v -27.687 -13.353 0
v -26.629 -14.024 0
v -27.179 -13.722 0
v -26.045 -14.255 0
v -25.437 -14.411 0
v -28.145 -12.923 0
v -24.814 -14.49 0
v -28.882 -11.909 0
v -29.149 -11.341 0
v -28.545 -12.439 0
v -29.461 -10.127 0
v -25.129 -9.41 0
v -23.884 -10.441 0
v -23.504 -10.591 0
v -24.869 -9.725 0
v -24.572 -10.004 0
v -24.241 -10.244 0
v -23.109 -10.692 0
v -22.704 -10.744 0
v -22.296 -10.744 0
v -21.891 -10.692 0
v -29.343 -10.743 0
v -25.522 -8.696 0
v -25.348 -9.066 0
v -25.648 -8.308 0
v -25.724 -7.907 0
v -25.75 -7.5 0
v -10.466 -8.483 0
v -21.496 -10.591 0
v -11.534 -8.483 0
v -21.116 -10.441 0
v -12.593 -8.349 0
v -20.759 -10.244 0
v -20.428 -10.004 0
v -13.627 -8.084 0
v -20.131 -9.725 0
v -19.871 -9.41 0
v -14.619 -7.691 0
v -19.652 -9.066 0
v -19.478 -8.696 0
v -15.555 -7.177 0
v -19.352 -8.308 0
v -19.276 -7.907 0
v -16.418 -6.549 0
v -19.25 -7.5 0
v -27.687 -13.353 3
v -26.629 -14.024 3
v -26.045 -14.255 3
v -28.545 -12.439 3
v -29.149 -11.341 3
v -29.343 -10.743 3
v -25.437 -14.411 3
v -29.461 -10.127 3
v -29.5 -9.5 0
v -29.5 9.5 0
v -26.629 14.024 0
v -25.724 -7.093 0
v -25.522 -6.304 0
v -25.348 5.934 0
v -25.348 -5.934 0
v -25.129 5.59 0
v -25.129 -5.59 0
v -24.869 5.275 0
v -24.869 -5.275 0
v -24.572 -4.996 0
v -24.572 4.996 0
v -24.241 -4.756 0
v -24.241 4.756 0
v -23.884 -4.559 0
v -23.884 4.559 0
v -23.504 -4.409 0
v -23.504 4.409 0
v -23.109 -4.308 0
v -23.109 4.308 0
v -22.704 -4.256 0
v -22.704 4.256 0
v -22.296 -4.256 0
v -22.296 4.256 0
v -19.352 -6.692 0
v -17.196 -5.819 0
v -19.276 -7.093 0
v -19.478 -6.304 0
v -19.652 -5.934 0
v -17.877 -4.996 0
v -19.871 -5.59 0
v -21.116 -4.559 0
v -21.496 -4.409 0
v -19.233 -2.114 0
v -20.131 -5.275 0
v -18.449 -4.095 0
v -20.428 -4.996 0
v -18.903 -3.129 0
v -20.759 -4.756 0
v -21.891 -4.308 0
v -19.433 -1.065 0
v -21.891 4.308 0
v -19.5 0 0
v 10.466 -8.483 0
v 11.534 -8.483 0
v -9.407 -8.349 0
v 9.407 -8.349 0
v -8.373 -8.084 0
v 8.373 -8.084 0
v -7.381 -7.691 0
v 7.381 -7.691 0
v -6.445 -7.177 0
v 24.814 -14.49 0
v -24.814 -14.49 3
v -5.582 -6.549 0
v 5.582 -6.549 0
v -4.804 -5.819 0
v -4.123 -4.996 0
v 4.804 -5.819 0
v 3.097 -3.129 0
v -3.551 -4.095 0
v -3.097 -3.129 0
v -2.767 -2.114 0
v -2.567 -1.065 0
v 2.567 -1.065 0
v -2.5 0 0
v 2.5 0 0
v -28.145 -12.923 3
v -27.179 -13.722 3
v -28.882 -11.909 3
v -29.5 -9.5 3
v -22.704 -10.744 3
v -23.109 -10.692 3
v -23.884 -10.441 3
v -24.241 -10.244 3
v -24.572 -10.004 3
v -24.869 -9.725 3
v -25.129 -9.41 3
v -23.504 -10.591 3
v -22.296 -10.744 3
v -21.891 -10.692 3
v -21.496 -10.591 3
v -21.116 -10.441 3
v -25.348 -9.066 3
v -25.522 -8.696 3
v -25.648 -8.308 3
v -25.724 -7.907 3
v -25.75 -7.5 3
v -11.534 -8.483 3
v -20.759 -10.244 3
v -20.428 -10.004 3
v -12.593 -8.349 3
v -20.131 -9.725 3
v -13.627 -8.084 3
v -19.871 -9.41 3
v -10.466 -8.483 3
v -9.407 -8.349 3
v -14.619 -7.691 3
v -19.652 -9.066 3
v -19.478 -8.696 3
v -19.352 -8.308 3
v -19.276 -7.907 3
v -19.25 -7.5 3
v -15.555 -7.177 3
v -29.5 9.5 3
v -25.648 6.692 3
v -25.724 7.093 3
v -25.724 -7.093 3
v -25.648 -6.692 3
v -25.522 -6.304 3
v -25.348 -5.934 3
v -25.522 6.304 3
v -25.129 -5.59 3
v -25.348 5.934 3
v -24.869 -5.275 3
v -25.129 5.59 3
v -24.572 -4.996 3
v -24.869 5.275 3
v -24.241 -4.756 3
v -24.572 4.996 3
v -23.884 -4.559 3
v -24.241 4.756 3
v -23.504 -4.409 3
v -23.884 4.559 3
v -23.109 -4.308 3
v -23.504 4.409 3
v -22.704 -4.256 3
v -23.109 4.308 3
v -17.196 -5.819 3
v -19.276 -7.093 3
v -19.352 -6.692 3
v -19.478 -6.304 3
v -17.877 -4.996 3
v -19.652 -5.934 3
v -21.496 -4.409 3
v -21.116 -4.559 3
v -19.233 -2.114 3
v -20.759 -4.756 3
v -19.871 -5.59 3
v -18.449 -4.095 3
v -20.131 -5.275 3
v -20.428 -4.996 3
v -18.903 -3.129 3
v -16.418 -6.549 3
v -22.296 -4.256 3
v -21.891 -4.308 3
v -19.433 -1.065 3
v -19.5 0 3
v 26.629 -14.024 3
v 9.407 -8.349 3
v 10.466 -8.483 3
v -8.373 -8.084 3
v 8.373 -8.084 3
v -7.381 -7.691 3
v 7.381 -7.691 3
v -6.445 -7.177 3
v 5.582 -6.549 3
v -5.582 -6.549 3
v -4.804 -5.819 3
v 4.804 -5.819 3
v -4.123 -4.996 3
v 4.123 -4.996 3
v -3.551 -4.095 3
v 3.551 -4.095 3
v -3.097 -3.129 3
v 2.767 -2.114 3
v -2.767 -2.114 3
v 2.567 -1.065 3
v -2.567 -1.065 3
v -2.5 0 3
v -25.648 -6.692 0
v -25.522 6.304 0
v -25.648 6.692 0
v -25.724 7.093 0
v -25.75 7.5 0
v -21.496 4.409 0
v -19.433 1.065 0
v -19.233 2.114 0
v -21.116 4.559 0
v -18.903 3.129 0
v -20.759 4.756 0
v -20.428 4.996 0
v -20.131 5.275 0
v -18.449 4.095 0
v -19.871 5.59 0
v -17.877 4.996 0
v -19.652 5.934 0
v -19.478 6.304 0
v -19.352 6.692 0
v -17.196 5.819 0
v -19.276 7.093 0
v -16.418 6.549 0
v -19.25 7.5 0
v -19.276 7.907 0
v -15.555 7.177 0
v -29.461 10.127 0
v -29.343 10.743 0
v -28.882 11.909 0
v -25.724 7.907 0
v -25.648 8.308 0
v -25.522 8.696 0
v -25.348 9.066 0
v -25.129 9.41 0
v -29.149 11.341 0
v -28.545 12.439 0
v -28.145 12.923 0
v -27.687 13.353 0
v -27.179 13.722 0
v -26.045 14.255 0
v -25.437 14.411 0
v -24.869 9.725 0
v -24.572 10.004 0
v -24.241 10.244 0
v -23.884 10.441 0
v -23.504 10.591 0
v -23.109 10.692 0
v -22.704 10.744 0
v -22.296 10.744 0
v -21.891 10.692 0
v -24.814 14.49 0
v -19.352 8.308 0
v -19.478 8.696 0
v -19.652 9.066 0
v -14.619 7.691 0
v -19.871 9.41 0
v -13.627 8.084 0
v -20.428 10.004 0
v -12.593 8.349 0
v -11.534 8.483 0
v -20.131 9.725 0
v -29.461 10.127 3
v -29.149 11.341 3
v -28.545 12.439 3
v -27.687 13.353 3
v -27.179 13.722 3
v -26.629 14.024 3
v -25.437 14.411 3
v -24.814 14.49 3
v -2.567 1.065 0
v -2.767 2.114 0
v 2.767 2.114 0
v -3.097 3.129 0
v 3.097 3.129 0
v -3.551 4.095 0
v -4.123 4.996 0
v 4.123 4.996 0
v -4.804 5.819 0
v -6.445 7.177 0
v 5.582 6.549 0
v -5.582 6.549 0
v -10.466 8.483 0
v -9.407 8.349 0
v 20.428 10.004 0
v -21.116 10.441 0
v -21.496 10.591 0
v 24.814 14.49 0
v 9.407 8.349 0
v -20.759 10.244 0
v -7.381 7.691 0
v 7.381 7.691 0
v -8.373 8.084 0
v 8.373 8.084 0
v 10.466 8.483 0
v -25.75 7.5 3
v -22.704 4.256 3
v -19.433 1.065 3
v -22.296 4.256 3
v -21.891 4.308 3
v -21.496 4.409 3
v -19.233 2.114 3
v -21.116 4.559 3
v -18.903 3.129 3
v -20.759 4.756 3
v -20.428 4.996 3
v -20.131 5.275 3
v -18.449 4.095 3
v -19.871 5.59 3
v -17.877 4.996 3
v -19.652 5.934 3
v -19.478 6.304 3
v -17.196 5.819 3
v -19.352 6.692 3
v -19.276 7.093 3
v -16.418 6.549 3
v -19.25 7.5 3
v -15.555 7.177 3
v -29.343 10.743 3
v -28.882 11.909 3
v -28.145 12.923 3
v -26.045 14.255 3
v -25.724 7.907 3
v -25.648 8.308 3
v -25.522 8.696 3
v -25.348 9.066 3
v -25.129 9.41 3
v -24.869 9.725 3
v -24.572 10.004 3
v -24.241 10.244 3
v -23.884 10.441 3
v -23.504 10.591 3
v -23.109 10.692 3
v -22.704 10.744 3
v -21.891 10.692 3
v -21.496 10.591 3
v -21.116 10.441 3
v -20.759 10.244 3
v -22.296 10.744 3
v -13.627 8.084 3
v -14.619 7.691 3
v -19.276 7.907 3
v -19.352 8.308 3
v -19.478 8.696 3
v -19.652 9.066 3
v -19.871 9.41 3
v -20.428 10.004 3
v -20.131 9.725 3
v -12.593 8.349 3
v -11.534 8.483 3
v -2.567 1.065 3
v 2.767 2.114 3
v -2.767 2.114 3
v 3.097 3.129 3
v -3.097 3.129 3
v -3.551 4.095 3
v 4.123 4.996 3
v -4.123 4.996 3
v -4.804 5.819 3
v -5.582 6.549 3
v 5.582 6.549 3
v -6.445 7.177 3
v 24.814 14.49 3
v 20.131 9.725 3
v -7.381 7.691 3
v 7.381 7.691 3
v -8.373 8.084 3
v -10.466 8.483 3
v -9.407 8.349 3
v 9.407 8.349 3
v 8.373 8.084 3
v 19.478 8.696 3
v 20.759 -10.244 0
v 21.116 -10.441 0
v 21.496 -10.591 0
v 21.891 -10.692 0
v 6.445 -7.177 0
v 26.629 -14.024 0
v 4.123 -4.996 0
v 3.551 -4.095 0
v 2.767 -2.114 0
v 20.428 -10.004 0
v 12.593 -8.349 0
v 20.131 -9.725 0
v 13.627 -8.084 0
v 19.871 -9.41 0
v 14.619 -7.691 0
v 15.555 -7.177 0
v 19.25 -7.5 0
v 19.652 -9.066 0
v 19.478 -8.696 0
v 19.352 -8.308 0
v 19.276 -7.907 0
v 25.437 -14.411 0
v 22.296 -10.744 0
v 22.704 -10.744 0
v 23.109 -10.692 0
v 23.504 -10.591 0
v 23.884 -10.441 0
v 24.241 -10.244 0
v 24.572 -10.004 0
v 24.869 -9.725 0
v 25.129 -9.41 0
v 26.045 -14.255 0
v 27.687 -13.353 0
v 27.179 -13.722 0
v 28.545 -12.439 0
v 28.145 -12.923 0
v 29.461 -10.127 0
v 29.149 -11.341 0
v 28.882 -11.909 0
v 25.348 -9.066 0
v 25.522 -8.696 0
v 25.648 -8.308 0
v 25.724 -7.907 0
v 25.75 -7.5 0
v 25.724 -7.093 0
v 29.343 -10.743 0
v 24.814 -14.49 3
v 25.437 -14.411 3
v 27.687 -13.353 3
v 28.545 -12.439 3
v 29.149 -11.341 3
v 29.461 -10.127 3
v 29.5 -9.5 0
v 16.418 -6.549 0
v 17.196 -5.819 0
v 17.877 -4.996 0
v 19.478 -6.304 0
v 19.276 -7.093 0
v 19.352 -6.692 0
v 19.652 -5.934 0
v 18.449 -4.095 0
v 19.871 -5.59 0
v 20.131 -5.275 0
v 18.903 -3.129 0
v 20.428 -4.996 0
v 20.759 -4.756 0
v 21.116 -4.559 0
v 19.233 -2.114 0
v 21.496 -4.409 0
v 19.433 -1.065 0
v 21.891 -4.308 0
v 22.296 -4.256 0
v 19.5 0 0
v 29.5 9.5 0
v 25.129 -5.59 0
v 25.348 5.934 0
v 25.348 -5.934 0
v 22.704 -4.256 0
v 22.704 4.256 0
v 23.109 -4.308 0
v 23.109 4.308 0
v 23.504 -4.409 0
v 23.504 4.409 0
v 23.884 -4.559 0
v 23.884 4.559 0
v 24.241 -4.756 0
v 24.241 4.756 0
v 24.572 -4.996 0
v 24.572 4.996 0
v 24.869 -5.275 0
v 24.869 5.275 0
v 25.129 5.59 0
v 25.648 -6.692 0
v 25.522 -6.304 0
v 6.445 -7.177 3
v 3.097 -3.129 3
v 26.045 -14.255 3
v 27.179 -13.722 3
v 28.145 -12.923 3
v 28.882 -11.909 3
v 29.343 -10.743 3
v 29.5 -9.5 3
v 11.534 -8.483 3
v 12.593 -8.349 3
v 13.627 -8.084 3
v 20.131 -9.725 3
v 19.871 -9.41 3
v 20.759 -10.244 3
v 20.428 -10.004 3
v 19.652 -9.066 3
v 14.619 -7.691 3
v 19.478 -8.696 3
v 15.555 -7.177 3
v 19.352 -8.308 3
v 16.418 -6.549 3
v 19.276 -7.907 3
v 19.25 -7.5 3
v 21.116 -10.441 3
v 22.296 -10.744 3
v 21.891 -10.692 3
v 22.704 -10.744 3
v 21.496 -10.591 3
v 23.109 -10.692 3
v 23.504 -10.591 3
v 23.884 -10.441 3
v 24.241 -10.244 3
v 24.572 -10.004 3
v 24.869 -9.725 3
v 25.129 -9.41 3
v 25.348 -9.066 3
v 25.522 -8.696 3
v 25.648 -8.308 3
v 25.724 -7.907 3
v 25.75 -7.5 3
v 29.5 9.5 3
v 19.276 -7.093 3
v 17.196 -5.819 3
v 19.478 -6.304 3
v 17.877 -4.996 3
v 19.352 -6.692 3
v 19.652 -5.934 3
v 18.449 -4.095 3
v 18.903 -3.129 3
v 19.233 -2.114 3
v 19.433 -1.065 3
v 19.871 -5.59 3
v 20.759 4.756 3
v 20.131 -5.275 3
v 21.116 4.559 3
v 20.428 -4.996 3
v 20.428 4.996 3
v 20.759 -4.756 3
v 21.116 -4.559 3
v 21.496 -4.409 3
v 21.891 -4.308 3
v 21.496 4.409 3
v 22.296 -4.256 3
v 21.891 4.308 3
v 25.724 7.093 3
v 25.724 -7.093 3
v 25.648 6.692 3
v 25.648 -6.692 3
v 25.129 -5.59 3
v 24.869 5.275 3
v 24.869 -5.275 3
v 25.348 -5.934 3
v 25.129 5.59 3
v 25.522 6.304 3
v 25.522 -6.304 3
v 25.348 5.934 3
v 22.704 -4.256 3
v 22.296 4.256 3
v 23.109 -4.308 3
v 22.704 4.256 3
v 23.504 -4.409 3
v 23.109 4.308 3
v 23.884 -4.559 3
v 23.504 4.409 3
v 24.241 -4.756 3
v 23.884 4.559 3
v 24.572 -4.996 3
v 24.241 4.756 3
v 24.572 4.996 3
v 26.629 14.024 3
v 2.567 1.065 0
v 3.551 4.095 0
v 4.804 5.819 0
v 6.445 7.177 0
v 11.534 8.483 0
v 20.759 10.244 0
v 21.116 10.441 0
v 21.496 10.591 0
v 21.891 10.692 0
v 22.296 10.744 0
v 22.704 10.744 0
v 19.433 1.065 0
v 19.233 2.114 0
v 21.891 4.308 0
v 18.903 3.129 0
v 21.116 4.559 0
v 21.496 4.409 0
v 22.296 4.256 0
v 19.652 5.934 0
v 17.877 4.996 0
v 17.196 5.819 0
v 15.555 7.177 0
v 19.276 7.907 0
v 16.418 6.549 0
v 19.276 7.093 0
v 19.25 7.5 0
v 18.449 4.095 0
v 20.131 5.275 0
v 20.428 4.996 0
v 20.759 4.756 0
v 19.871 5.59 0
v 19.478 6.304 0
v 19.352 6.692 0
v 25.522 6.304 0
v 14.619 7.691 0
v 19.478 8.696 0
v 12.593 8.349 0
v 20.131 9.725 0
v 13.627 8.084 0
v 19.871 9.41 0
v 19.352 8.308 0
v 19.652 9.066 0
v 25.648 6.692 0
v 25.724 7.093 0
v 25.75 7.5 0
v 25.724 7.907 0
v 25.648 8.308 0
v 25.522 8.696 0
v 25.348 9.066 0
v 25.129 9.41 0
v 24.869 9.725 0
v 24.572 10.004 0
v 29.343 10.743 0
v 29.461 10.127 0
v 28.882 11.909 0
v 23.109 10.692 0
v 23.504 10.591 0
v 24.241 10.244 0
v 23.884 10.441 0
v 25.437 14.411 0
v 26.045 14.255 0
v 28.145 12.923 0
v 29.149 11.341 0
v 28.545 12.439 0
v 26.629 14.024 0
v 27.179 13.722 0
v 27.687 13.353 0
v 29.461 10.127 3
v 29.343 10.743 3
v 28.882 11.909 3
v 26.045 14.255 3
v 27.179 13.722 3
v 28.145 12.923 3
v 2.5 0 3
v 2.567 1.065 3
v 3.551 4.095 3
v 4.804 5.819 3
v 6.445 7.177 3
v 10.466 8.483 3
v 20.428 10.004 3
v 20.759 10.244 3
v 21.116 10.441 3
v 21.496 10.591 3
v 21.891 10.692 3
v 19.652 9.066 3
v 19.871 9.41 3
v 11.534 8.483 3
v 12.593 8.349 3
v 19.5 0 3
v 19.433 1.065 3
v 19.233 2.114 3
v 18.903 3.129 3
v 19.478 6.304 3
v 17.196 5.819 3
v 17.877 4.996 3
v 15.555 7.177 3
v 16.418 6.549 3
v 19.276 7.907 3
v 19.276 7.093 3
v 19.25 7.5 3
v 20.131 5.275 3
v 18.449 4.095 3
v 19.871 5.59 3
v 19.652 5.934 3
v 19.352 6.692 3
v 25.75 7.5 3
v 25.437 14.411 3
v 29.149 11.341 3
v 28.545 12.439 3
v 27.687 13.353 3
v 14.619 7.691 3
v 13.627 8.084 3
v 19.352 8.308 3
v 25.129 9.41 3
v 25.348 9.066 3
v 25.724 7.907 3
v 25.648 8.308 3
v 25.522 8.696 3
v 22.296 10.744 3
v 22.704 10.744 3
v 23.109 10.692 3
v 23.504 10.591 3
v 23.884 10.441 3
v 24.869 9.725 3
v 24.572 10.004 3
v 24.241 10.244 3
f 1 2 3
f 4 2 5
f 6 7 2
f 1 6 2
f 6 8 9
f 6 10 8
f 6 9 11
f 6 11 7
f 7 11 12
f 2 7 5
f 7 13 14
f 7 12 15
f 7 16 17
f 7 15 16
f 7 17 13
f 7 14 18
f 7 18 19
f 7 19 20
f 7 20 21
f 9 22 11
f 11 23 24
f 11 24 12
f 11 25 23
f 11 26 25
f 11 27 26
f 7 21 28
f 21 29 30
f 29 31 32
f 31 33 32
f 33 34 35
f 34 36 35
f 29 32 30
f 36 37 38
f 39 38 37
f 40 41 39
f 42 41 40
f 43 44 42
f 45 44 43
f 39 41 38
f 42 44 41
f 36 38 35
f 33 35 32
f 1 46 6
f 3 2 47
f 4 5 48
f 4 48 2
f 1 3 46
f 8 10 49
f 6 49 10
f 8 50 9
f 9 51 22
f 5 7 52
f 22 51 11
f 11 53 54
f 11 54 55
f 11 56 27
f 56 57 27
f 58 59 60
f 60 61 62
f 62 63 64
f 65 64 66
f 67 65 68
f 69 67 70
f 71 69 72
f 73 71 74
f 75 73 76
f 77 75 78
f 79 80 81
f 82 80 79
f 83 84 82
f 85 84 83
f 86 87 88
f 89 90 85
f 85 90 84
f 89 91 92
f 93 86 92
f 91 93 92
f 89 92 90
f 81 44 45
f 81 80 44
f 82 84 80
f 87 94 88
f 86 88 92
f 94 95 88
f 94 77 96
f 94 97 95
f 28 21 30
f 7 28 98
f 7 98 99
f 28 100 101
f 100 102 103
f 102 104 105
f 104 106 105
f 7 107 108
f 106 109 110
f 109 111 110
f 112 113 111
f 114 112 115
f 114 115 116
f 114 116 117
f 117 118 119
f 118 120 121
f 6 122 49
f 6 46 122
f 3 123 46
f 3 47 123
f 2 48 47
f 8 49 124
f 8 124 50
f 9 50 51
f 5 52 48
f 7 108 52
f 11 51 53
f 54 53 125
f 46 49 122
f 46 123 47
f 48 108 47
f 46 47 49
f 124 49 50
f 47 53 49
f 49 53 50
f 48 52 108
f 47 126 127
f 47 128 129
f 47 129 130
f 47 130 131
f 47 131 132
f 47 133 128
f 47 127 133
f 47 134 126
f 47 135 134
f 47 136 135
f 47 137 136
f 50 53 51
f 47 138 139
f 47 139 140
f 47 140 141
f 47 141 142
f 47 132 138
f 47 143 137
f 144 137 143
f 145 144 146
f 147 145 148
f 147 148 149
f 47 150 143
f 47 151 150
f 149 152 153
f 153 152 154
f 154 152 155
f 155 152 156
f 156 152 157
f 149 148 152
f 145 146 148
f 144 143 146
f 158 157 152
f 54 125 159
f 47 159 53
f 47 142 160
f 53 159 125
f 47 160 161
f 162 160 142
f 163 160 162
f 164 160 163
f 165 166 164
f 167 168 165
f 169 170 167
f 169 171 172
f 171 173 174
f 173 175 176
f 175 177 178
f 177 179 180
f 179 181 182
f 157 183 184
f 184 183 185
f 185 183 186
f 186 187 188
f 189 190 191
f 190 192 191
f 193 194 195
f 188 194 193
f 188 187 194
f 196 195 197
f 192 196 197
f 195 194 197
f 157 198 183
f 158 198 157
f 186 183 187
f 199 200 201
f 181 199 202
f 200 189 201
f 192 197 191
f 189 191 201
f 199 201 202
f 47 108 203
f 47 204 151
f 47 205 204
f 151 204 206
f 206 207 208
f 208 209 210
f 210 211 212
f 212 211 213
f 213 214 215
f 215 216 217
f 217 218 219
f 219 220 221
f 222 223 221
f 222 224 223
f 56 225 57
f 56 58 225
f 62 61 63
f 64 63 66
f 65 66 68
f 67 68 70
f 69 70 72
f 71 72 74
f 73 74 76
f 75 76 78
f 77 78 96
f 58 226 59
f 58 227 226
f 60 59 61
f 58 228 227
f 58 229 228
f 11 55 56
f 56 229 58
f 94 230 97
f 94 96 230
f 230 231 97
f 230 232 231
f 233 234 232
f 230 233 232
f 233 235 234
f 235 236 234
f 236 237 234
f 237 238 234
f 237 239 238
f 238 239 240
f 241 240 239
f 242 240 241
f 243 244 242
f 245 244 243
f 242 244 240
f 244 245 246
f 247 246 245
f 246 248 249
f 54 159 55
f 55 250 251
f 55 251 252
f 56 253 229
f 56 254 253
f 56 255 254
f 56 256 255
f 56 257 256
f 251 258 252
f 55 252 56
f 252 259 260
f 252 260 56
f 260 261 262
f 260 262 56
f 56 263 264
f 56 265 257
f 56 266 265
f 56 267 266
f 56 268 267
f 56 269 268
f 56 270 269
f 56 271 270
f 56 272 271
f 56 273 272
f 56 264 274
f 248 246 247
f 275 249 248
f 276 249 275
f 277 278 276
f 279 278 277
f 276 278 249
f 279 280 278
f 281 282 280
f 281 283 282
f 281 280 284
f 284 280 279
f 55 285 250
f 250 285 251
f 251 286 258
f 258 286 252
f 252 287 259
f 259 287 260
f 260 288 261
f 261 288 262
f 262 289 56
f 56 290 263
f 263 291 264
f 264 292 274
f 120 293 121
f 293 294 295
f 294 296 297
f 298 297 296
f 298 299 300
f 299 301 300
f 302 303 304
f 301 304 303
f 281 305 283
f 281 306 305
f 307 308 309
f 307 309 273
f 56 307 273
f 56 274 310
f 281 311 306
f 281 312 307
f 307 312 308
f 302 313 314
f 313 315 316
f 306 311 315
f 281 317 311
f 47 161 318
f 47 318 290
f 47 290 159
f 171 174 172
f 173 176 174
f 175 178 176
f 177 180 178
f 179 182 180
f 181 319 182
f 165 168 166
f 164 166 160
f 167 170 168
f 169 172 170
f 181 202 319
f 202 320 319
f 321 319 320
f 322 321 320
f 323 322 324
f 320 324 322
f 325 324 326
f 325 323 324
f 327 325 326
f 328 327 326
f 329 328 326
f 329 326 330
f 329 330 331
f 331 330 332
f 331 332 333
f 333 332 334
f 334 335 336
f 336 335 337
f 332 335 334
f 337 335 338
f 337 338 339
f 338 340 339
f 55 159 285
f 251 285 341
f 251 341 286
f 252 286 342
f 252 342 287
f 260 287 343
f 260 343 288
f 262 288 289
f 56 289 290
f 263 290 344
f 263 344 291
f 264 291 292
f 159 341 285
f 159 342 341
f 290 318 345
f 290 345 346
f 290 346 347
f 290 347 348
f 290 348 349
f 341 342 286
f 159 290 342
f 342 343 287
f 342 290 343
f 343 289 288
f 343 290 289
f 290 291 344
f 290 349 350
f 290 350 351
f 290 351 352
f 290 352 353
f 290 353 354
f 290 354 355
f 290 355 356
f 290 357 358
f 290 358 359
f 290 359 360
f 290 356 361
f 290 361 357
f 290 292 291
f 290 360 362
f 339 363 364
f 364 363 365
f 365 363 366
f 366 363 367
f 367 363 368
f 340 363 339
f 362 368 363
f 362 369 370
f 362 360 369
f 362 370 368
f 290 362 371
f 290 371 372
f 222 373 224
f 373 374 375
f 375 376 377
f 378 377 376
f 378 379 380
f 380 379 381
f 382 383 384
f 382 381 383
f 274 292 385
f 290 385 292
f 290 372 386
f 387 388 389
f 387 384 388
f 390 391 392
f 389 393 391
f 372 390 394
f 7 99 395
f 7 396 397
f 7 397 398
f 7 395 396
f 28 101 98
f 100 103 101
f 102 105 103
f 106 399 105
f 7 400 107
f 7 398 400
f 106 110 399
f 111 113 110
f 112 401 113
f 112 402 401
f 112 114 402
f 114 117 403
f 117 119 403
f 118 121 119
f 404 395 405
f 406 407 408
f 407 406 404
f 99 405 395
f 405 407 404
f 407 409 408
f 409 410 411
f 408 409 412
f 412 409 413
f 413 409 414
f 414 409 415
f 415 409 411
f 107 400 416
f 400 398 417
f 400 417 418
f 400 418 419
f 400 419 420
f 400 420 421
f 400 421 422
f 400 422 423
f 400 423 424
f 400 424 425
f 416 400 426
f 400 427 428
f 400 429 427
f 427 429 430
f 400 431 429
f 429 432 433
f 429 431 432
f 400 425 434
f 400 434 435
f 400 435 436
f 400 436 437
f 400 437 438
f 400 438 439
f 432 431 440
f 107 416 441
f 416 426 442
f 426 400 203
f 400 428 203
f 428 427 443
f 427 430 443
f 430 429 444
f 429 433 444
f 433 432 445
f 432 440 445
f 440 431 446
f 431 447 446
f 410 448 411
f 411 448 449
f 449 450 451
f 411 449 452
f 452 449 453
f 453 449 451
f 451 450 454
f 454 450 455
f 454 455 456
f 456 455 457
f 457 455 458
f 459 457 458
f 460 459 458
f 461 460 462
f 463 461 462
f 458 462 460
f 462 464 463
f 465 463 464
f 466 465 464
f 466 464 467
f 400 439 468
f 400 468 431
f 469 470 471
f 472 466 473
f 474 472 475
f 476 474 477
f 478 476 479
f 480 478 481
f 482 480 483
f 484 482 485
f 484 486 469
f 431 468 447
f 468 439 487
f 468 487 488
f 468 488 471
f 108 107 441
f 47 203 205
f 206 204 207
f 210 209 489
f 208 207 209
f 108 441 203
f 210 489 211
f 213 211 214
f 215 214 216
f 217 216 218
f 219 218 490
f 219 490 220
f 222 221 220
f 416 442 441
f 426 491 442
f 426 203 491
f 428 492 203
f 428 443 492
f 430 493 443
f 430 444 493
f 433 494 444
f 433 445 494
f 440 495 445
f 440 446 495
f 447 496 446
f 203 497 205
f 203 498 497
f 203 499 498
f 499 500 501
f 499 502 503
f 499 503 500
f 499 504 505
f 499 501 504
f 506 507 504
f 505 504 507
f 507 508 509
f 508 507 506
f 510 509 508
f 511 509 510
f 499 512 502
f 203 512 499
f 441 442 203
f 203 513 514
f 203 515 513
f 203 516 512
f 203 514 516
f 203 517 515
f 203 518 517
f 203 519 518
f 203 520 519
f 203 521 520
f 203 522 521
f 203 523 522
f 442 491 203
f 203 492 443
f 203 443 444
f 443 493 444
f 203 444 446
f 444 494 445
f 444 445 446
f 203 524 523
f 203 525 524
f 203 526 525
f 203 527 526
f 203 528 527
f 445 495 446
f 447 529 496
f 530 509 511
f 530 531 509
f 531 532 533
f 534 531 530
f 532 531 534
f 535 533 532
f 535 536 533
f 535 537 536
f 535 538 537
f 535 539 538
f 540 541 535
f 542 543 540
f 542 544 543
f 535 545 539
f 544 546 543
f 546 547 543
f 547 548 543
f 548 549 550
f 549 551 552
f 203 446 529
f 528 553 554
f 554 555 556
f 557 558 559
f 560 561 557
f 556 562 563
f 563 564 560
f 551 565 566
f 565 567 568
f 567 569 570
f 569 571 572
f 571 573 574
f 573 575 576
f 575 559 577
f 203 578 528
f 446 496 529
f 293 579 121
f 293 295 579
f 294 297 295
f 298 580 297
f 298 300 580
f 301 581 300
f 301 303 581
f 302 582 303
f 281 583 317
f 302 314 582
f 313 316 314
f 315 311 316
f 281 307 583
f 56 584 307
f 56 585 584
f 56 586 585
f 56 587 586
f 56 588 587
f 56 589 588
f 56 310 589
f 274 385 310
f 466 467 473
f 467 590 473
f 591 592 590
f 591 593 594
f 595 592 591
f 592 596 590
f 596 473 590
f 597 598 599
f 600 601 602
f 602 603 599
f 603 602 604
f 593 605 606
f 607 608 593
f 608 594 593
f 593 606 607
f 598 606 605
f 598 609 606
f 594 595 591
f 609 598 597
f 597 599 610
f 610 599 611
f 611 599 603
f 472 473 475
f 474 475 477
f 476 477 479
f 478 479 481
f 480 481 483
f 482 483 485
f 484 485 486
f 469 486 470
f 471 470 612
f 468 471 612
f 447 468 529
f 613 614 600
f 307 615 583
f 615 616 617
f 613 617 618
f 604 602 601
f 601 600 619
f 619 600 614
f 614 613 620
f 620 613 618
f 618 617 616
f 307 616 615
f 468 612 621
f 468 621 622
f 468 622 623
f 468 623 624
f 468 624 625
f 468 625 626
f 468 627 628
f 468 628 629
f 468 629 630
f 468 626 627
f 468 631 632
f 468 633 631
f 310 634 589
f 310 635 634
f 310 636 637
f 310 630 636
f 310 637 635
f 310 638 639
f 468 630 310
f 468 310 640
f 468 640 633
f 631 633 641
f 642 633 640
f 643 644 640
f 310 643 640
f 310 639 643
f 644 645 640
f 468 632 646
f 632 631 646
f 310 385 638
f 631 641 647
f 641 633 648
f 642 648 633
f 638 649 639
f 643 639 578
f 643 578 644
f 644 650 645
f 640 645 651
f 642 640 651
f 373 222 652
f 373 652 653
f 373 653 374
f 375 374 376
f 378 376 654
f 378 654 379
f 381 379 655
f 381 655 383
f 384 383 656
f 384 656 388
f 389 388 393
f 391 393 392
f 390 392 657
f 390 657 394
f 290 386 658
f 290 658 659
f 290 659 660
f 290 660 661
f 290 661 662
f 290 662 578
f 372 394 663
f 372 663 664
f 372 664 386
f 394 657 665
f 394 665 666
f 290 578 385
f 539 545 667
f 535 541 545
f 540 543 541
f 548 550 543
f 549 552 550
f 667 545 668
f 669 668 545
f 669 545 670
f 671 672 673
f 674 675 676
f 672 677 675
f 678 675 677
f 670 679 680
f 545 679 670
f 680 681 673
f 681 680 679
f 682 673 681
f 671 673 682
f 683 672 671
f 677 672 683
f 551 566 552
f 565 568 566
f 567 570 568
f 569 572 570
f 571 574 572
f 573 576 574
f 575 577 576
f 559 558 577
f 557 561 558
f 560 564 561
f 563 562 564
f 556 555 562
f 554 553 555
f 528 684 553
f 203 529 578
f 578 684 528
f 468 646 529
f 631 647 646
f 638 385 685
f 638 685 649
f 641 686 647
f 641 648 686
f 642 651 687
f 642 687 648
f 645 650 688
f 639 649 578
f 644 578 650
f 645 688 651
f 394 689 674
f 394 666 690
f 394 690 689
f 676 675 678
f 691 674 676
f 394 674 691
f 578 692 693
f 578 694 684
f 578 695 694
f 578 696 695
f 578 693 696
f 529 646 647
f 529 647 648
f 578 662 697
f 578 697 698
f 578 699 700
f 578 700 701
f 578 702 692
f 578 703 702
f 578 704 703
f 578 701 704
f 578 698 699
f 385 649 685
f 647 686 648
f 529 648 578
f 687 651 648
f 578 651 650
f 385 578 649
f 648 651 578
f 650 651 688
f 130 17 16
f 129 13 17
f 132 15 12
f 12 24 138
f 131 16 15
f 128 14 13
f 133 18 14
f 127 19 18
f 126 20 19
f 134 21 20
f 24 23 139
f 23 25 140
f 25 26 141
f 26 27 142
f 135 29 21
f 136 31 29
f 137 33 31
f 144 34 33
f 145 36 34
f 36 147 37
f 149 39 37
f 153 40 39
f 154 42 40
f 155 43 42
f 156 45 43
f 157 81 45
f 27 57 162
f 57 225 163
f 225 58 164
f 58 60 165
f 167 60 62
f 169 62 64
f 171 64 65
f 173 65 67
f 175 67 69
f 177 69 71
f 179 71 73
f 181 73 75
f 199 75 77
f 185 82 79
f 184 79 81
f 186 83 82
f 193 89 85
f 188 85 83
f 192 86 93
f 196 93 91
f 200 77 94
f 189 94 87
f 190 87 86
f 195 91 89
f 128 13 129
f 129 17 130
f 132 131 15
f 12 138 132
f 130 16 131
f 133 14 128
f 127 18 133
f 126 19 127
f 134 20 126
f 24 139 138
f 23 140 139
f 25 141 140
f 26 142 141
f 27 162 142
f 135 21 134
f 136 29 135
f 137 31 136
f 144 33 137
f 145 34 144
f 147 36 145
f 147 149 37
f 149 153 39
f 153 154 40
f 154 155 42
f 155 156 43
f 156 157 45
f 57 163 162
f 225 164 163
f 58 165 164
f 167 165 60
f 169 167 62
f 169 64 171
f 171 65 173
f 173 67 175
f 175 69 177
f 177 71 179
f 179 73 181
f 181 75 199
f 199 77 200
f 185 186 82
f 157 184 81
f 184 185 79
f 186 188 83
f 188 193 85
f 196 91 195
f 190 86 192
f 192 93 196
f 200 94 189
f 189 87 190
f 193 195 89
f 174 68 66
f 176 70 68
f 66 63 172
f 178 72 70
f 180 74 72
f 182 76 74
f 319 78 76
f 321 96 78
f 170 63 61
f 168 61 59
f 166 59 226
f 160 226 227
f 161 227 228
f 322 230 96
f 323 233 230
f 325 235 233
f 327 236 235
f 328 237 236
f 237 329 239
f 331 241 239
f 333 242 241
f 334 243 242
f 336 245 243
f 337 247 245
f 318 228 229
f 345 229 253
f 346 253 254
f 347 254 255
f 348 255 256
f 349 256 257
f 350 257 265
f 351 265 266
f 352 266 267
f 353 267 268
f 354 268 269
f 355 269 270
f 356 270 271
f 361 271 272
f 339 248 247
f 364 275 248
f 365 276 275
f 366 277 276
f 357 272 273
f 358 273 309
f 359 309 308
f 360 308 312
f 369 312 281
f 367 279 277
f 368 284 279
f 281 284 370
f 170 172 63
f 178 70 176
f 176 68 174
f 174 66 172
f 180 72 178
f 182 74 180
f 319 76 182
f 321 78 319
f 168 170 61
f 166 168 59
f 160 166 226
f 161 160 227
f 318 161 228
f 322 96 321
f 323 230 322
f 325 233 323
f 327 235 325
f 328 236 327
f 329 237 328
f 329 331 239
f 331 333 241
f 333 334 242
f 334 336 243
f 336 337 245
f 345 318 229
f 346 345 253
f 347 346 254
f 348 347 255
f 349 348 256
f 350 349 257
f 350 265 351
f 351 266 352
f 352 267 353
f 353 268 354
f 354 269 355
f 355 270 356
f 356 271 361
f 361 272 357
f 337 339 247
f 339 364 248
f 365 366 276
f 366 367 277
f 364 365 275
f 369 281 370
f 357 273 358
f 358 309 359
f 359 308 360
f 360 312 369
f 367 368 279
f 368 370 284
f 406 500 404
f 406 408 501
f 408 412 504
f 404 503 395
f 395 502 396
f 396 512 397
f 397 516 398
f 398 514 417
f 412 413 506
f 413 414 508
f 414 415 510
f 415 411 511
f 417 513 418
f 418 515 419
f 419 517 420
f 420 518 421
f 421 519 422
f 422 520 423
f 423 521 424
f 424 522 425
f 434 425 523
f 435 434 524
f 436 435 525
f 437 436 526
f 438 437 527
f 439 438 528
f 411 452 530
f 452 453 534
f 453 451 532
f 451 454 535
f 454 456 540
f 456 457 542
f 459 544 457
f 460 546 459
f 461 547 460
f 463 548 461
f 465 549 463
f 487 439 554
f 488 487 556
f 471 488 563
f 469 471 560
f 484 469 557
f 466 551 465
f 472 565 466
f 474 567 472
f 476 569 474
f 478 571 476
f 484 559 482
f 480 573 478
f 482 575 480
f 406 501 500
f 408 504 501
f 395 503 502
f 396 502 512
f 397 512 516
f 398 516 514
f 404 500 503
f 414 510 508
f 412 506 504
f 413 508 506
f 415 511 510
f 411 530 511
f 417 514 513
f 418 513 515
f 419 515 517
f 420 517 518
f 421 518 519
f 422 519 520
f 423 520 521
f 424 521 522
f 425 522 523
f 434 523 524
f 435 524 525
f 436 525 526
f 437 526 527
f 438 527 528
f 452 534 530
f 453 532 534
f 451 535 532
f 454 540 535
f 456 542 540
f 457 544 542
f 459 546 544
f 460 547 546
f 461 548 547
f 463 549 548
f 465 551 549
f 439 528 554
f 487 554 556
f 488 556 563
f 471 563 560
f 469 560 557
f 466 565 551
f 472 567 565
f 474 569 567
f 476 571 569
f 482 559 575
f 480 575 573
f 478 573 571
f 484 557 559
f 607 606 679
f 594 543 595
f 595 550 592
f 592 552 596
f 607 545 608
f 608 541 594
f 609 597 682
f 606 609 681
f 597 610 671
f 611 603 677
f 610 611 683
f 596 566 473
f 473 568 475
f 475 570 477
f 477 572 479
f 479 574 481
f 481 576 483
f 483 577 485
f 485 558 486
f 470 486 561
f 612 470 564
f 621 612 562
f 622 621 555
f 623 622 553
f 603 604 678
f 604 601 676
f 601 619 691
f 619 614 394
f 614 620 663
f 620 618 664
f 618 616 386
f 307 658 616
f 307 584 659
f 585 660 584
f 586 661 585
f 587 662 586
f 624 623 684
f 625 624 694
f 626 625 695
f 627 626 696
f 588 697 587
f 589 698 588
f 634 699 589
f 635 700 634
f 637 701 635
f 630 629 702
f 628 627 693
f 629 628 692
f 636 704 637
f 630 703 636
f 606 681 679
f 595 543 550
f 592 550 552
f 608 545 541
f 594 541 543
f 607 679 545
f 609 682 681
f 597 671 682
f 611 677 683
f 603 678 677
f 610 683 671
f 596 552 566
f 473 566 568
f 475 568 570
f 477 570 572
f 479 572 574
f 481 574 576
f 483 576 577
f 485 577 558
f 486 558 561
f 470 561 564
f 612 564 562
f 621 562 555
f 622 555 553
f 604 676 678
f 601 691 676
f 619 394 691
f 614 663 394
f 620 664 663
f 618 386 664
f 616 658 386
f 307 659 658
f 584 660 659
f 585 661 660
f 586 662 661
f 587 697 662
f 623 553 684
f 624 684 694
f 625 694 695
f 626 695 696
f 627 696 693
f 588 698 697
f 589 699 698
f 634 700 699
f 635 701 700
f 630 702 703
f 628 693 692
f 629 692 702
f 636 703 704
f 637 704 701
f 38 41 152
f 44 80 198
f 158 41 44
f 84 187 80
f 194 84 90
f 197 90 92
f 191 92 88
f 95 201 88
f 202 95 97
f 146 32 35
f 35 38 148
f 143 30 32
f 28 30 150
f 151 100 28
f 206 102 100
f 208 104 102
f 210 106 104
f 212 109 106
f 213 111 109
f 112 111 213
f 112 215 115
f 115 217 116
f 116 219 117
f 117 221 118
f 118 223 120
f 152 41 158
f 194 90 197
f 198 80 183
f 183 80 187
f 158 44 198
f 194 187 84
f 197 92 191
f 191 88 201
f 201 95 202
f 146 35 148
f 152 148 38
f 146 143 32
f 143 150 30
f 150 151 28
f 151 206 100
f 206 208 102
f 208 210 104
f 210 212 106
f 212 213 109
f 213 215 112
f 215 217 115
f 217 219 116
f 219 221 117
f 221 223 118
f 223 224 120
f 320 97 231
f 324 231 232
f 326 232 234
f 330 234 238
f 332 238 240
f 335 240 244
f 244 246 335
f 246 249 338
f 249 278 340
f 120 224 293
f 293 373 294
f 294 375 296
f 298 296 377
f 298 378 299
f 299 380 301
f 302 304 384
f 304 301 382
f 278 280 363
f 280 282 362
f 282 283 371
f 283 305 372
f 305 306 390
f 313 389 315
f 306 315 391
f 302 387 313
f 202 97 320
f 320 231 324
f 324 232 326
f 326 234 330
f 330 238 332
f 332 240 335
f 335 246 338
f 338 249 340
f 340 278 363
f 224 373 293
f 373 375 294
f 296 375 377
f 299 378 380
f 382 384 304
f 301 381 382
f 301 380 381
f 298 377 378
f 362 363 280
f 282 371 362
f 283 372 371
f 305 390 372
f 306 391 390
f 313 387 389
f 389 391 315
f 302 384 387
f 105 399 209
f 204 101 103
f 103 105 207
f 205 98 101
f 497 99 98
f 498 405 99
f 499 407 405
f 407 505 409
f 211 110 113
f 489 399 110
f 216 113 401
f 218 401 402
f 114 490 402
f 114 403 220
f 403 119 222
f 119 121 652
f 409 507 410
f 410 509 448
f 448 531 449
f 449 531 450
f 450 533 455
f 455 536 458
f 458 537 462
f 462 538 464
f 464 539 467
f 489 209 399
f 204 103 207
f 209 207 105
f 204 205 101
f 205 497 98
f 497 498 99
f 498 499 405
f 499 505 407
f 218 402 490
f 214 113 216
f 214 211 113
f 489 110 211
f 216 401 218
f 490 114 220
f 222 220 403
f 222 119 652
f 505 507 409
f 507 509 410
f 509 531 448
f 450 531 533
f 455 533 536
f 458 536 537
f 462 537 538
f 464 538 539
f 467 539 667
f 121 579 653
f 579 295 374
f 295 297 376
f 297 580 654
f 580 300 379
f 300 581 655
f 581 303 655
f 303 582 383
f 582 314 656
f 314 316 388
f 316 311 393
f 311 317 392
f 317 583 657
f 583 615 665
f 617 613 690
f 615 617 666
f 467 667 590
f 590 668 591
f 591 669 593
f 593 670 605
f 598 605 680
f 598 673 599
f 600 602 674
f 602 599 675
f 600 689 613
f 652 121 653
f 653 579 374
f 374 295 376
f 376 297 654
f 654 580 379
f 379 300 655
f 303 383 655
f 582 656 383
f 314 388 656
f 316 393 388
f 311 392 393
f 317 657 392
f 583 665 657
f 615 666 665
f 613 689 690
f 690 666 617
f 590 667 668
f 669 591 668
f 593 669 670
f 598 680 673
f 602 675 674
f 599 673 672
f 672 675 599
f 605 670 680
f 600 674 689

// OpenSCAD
$fn = 50;

difference() {
	union() {
		hull() {
			translate(v = [-24.5, 9.5, 0]) {
				cylinder(h = 3, r = 5);
			}
			translate(v = [24.5, 9.5, 0]) {
				cylinder(h = 3, r = 5);
			}
			translate(v = [-24.5, -9.5, 0]) {
				cylinder(h = 3, r = 5);
			}
			translate(v = [24.5, -9.5, 0]) {
				cylinder(h = 3, r = 5);
			}
		}
	}
	union() {
		translate(v = [-22.5, -7.5, -100.0]) {
			cylinder(h = 200, r = 3.25);
		}
		translate(v = [-22.5, 7.5, -100.0]) {
			cylinder(h = 200, r = 3.25);
		}
		translate(v = [22.5, -7.5, -100.0]) {
			cylinder(h = 200, r = 3.25);
		}
		translate(v = [22.5, 7.5, -100.0]) {
			cylinder(h = 200, r = 3.25);
		}
		translate(v = [-22.5, -7.5, -100.0]) {
			cylinder(h = 200, r = 1.8);
		}
		translate(v = [-22.5, 7.5, -100.0]) {
			cylinder(h = 200, r = 1.8);
		}
		translate(v = [22.5, -7.5, -100.0]) {
			cylinder(h = 200, r = 1.8);
		}
		translate(v = [22.5, 7.5, -100.0]) {
			cylinder(h = 200, r = 1.8);
		}
		translate(v = [-11.0, 0, 0.0]) {
			cylinder(h = 3, r = 8.5);
		}
		translate(v = [11.0, 0, 0.0]) {
			cylinder(h = 3, r = 8.5);
		}
	}
}
